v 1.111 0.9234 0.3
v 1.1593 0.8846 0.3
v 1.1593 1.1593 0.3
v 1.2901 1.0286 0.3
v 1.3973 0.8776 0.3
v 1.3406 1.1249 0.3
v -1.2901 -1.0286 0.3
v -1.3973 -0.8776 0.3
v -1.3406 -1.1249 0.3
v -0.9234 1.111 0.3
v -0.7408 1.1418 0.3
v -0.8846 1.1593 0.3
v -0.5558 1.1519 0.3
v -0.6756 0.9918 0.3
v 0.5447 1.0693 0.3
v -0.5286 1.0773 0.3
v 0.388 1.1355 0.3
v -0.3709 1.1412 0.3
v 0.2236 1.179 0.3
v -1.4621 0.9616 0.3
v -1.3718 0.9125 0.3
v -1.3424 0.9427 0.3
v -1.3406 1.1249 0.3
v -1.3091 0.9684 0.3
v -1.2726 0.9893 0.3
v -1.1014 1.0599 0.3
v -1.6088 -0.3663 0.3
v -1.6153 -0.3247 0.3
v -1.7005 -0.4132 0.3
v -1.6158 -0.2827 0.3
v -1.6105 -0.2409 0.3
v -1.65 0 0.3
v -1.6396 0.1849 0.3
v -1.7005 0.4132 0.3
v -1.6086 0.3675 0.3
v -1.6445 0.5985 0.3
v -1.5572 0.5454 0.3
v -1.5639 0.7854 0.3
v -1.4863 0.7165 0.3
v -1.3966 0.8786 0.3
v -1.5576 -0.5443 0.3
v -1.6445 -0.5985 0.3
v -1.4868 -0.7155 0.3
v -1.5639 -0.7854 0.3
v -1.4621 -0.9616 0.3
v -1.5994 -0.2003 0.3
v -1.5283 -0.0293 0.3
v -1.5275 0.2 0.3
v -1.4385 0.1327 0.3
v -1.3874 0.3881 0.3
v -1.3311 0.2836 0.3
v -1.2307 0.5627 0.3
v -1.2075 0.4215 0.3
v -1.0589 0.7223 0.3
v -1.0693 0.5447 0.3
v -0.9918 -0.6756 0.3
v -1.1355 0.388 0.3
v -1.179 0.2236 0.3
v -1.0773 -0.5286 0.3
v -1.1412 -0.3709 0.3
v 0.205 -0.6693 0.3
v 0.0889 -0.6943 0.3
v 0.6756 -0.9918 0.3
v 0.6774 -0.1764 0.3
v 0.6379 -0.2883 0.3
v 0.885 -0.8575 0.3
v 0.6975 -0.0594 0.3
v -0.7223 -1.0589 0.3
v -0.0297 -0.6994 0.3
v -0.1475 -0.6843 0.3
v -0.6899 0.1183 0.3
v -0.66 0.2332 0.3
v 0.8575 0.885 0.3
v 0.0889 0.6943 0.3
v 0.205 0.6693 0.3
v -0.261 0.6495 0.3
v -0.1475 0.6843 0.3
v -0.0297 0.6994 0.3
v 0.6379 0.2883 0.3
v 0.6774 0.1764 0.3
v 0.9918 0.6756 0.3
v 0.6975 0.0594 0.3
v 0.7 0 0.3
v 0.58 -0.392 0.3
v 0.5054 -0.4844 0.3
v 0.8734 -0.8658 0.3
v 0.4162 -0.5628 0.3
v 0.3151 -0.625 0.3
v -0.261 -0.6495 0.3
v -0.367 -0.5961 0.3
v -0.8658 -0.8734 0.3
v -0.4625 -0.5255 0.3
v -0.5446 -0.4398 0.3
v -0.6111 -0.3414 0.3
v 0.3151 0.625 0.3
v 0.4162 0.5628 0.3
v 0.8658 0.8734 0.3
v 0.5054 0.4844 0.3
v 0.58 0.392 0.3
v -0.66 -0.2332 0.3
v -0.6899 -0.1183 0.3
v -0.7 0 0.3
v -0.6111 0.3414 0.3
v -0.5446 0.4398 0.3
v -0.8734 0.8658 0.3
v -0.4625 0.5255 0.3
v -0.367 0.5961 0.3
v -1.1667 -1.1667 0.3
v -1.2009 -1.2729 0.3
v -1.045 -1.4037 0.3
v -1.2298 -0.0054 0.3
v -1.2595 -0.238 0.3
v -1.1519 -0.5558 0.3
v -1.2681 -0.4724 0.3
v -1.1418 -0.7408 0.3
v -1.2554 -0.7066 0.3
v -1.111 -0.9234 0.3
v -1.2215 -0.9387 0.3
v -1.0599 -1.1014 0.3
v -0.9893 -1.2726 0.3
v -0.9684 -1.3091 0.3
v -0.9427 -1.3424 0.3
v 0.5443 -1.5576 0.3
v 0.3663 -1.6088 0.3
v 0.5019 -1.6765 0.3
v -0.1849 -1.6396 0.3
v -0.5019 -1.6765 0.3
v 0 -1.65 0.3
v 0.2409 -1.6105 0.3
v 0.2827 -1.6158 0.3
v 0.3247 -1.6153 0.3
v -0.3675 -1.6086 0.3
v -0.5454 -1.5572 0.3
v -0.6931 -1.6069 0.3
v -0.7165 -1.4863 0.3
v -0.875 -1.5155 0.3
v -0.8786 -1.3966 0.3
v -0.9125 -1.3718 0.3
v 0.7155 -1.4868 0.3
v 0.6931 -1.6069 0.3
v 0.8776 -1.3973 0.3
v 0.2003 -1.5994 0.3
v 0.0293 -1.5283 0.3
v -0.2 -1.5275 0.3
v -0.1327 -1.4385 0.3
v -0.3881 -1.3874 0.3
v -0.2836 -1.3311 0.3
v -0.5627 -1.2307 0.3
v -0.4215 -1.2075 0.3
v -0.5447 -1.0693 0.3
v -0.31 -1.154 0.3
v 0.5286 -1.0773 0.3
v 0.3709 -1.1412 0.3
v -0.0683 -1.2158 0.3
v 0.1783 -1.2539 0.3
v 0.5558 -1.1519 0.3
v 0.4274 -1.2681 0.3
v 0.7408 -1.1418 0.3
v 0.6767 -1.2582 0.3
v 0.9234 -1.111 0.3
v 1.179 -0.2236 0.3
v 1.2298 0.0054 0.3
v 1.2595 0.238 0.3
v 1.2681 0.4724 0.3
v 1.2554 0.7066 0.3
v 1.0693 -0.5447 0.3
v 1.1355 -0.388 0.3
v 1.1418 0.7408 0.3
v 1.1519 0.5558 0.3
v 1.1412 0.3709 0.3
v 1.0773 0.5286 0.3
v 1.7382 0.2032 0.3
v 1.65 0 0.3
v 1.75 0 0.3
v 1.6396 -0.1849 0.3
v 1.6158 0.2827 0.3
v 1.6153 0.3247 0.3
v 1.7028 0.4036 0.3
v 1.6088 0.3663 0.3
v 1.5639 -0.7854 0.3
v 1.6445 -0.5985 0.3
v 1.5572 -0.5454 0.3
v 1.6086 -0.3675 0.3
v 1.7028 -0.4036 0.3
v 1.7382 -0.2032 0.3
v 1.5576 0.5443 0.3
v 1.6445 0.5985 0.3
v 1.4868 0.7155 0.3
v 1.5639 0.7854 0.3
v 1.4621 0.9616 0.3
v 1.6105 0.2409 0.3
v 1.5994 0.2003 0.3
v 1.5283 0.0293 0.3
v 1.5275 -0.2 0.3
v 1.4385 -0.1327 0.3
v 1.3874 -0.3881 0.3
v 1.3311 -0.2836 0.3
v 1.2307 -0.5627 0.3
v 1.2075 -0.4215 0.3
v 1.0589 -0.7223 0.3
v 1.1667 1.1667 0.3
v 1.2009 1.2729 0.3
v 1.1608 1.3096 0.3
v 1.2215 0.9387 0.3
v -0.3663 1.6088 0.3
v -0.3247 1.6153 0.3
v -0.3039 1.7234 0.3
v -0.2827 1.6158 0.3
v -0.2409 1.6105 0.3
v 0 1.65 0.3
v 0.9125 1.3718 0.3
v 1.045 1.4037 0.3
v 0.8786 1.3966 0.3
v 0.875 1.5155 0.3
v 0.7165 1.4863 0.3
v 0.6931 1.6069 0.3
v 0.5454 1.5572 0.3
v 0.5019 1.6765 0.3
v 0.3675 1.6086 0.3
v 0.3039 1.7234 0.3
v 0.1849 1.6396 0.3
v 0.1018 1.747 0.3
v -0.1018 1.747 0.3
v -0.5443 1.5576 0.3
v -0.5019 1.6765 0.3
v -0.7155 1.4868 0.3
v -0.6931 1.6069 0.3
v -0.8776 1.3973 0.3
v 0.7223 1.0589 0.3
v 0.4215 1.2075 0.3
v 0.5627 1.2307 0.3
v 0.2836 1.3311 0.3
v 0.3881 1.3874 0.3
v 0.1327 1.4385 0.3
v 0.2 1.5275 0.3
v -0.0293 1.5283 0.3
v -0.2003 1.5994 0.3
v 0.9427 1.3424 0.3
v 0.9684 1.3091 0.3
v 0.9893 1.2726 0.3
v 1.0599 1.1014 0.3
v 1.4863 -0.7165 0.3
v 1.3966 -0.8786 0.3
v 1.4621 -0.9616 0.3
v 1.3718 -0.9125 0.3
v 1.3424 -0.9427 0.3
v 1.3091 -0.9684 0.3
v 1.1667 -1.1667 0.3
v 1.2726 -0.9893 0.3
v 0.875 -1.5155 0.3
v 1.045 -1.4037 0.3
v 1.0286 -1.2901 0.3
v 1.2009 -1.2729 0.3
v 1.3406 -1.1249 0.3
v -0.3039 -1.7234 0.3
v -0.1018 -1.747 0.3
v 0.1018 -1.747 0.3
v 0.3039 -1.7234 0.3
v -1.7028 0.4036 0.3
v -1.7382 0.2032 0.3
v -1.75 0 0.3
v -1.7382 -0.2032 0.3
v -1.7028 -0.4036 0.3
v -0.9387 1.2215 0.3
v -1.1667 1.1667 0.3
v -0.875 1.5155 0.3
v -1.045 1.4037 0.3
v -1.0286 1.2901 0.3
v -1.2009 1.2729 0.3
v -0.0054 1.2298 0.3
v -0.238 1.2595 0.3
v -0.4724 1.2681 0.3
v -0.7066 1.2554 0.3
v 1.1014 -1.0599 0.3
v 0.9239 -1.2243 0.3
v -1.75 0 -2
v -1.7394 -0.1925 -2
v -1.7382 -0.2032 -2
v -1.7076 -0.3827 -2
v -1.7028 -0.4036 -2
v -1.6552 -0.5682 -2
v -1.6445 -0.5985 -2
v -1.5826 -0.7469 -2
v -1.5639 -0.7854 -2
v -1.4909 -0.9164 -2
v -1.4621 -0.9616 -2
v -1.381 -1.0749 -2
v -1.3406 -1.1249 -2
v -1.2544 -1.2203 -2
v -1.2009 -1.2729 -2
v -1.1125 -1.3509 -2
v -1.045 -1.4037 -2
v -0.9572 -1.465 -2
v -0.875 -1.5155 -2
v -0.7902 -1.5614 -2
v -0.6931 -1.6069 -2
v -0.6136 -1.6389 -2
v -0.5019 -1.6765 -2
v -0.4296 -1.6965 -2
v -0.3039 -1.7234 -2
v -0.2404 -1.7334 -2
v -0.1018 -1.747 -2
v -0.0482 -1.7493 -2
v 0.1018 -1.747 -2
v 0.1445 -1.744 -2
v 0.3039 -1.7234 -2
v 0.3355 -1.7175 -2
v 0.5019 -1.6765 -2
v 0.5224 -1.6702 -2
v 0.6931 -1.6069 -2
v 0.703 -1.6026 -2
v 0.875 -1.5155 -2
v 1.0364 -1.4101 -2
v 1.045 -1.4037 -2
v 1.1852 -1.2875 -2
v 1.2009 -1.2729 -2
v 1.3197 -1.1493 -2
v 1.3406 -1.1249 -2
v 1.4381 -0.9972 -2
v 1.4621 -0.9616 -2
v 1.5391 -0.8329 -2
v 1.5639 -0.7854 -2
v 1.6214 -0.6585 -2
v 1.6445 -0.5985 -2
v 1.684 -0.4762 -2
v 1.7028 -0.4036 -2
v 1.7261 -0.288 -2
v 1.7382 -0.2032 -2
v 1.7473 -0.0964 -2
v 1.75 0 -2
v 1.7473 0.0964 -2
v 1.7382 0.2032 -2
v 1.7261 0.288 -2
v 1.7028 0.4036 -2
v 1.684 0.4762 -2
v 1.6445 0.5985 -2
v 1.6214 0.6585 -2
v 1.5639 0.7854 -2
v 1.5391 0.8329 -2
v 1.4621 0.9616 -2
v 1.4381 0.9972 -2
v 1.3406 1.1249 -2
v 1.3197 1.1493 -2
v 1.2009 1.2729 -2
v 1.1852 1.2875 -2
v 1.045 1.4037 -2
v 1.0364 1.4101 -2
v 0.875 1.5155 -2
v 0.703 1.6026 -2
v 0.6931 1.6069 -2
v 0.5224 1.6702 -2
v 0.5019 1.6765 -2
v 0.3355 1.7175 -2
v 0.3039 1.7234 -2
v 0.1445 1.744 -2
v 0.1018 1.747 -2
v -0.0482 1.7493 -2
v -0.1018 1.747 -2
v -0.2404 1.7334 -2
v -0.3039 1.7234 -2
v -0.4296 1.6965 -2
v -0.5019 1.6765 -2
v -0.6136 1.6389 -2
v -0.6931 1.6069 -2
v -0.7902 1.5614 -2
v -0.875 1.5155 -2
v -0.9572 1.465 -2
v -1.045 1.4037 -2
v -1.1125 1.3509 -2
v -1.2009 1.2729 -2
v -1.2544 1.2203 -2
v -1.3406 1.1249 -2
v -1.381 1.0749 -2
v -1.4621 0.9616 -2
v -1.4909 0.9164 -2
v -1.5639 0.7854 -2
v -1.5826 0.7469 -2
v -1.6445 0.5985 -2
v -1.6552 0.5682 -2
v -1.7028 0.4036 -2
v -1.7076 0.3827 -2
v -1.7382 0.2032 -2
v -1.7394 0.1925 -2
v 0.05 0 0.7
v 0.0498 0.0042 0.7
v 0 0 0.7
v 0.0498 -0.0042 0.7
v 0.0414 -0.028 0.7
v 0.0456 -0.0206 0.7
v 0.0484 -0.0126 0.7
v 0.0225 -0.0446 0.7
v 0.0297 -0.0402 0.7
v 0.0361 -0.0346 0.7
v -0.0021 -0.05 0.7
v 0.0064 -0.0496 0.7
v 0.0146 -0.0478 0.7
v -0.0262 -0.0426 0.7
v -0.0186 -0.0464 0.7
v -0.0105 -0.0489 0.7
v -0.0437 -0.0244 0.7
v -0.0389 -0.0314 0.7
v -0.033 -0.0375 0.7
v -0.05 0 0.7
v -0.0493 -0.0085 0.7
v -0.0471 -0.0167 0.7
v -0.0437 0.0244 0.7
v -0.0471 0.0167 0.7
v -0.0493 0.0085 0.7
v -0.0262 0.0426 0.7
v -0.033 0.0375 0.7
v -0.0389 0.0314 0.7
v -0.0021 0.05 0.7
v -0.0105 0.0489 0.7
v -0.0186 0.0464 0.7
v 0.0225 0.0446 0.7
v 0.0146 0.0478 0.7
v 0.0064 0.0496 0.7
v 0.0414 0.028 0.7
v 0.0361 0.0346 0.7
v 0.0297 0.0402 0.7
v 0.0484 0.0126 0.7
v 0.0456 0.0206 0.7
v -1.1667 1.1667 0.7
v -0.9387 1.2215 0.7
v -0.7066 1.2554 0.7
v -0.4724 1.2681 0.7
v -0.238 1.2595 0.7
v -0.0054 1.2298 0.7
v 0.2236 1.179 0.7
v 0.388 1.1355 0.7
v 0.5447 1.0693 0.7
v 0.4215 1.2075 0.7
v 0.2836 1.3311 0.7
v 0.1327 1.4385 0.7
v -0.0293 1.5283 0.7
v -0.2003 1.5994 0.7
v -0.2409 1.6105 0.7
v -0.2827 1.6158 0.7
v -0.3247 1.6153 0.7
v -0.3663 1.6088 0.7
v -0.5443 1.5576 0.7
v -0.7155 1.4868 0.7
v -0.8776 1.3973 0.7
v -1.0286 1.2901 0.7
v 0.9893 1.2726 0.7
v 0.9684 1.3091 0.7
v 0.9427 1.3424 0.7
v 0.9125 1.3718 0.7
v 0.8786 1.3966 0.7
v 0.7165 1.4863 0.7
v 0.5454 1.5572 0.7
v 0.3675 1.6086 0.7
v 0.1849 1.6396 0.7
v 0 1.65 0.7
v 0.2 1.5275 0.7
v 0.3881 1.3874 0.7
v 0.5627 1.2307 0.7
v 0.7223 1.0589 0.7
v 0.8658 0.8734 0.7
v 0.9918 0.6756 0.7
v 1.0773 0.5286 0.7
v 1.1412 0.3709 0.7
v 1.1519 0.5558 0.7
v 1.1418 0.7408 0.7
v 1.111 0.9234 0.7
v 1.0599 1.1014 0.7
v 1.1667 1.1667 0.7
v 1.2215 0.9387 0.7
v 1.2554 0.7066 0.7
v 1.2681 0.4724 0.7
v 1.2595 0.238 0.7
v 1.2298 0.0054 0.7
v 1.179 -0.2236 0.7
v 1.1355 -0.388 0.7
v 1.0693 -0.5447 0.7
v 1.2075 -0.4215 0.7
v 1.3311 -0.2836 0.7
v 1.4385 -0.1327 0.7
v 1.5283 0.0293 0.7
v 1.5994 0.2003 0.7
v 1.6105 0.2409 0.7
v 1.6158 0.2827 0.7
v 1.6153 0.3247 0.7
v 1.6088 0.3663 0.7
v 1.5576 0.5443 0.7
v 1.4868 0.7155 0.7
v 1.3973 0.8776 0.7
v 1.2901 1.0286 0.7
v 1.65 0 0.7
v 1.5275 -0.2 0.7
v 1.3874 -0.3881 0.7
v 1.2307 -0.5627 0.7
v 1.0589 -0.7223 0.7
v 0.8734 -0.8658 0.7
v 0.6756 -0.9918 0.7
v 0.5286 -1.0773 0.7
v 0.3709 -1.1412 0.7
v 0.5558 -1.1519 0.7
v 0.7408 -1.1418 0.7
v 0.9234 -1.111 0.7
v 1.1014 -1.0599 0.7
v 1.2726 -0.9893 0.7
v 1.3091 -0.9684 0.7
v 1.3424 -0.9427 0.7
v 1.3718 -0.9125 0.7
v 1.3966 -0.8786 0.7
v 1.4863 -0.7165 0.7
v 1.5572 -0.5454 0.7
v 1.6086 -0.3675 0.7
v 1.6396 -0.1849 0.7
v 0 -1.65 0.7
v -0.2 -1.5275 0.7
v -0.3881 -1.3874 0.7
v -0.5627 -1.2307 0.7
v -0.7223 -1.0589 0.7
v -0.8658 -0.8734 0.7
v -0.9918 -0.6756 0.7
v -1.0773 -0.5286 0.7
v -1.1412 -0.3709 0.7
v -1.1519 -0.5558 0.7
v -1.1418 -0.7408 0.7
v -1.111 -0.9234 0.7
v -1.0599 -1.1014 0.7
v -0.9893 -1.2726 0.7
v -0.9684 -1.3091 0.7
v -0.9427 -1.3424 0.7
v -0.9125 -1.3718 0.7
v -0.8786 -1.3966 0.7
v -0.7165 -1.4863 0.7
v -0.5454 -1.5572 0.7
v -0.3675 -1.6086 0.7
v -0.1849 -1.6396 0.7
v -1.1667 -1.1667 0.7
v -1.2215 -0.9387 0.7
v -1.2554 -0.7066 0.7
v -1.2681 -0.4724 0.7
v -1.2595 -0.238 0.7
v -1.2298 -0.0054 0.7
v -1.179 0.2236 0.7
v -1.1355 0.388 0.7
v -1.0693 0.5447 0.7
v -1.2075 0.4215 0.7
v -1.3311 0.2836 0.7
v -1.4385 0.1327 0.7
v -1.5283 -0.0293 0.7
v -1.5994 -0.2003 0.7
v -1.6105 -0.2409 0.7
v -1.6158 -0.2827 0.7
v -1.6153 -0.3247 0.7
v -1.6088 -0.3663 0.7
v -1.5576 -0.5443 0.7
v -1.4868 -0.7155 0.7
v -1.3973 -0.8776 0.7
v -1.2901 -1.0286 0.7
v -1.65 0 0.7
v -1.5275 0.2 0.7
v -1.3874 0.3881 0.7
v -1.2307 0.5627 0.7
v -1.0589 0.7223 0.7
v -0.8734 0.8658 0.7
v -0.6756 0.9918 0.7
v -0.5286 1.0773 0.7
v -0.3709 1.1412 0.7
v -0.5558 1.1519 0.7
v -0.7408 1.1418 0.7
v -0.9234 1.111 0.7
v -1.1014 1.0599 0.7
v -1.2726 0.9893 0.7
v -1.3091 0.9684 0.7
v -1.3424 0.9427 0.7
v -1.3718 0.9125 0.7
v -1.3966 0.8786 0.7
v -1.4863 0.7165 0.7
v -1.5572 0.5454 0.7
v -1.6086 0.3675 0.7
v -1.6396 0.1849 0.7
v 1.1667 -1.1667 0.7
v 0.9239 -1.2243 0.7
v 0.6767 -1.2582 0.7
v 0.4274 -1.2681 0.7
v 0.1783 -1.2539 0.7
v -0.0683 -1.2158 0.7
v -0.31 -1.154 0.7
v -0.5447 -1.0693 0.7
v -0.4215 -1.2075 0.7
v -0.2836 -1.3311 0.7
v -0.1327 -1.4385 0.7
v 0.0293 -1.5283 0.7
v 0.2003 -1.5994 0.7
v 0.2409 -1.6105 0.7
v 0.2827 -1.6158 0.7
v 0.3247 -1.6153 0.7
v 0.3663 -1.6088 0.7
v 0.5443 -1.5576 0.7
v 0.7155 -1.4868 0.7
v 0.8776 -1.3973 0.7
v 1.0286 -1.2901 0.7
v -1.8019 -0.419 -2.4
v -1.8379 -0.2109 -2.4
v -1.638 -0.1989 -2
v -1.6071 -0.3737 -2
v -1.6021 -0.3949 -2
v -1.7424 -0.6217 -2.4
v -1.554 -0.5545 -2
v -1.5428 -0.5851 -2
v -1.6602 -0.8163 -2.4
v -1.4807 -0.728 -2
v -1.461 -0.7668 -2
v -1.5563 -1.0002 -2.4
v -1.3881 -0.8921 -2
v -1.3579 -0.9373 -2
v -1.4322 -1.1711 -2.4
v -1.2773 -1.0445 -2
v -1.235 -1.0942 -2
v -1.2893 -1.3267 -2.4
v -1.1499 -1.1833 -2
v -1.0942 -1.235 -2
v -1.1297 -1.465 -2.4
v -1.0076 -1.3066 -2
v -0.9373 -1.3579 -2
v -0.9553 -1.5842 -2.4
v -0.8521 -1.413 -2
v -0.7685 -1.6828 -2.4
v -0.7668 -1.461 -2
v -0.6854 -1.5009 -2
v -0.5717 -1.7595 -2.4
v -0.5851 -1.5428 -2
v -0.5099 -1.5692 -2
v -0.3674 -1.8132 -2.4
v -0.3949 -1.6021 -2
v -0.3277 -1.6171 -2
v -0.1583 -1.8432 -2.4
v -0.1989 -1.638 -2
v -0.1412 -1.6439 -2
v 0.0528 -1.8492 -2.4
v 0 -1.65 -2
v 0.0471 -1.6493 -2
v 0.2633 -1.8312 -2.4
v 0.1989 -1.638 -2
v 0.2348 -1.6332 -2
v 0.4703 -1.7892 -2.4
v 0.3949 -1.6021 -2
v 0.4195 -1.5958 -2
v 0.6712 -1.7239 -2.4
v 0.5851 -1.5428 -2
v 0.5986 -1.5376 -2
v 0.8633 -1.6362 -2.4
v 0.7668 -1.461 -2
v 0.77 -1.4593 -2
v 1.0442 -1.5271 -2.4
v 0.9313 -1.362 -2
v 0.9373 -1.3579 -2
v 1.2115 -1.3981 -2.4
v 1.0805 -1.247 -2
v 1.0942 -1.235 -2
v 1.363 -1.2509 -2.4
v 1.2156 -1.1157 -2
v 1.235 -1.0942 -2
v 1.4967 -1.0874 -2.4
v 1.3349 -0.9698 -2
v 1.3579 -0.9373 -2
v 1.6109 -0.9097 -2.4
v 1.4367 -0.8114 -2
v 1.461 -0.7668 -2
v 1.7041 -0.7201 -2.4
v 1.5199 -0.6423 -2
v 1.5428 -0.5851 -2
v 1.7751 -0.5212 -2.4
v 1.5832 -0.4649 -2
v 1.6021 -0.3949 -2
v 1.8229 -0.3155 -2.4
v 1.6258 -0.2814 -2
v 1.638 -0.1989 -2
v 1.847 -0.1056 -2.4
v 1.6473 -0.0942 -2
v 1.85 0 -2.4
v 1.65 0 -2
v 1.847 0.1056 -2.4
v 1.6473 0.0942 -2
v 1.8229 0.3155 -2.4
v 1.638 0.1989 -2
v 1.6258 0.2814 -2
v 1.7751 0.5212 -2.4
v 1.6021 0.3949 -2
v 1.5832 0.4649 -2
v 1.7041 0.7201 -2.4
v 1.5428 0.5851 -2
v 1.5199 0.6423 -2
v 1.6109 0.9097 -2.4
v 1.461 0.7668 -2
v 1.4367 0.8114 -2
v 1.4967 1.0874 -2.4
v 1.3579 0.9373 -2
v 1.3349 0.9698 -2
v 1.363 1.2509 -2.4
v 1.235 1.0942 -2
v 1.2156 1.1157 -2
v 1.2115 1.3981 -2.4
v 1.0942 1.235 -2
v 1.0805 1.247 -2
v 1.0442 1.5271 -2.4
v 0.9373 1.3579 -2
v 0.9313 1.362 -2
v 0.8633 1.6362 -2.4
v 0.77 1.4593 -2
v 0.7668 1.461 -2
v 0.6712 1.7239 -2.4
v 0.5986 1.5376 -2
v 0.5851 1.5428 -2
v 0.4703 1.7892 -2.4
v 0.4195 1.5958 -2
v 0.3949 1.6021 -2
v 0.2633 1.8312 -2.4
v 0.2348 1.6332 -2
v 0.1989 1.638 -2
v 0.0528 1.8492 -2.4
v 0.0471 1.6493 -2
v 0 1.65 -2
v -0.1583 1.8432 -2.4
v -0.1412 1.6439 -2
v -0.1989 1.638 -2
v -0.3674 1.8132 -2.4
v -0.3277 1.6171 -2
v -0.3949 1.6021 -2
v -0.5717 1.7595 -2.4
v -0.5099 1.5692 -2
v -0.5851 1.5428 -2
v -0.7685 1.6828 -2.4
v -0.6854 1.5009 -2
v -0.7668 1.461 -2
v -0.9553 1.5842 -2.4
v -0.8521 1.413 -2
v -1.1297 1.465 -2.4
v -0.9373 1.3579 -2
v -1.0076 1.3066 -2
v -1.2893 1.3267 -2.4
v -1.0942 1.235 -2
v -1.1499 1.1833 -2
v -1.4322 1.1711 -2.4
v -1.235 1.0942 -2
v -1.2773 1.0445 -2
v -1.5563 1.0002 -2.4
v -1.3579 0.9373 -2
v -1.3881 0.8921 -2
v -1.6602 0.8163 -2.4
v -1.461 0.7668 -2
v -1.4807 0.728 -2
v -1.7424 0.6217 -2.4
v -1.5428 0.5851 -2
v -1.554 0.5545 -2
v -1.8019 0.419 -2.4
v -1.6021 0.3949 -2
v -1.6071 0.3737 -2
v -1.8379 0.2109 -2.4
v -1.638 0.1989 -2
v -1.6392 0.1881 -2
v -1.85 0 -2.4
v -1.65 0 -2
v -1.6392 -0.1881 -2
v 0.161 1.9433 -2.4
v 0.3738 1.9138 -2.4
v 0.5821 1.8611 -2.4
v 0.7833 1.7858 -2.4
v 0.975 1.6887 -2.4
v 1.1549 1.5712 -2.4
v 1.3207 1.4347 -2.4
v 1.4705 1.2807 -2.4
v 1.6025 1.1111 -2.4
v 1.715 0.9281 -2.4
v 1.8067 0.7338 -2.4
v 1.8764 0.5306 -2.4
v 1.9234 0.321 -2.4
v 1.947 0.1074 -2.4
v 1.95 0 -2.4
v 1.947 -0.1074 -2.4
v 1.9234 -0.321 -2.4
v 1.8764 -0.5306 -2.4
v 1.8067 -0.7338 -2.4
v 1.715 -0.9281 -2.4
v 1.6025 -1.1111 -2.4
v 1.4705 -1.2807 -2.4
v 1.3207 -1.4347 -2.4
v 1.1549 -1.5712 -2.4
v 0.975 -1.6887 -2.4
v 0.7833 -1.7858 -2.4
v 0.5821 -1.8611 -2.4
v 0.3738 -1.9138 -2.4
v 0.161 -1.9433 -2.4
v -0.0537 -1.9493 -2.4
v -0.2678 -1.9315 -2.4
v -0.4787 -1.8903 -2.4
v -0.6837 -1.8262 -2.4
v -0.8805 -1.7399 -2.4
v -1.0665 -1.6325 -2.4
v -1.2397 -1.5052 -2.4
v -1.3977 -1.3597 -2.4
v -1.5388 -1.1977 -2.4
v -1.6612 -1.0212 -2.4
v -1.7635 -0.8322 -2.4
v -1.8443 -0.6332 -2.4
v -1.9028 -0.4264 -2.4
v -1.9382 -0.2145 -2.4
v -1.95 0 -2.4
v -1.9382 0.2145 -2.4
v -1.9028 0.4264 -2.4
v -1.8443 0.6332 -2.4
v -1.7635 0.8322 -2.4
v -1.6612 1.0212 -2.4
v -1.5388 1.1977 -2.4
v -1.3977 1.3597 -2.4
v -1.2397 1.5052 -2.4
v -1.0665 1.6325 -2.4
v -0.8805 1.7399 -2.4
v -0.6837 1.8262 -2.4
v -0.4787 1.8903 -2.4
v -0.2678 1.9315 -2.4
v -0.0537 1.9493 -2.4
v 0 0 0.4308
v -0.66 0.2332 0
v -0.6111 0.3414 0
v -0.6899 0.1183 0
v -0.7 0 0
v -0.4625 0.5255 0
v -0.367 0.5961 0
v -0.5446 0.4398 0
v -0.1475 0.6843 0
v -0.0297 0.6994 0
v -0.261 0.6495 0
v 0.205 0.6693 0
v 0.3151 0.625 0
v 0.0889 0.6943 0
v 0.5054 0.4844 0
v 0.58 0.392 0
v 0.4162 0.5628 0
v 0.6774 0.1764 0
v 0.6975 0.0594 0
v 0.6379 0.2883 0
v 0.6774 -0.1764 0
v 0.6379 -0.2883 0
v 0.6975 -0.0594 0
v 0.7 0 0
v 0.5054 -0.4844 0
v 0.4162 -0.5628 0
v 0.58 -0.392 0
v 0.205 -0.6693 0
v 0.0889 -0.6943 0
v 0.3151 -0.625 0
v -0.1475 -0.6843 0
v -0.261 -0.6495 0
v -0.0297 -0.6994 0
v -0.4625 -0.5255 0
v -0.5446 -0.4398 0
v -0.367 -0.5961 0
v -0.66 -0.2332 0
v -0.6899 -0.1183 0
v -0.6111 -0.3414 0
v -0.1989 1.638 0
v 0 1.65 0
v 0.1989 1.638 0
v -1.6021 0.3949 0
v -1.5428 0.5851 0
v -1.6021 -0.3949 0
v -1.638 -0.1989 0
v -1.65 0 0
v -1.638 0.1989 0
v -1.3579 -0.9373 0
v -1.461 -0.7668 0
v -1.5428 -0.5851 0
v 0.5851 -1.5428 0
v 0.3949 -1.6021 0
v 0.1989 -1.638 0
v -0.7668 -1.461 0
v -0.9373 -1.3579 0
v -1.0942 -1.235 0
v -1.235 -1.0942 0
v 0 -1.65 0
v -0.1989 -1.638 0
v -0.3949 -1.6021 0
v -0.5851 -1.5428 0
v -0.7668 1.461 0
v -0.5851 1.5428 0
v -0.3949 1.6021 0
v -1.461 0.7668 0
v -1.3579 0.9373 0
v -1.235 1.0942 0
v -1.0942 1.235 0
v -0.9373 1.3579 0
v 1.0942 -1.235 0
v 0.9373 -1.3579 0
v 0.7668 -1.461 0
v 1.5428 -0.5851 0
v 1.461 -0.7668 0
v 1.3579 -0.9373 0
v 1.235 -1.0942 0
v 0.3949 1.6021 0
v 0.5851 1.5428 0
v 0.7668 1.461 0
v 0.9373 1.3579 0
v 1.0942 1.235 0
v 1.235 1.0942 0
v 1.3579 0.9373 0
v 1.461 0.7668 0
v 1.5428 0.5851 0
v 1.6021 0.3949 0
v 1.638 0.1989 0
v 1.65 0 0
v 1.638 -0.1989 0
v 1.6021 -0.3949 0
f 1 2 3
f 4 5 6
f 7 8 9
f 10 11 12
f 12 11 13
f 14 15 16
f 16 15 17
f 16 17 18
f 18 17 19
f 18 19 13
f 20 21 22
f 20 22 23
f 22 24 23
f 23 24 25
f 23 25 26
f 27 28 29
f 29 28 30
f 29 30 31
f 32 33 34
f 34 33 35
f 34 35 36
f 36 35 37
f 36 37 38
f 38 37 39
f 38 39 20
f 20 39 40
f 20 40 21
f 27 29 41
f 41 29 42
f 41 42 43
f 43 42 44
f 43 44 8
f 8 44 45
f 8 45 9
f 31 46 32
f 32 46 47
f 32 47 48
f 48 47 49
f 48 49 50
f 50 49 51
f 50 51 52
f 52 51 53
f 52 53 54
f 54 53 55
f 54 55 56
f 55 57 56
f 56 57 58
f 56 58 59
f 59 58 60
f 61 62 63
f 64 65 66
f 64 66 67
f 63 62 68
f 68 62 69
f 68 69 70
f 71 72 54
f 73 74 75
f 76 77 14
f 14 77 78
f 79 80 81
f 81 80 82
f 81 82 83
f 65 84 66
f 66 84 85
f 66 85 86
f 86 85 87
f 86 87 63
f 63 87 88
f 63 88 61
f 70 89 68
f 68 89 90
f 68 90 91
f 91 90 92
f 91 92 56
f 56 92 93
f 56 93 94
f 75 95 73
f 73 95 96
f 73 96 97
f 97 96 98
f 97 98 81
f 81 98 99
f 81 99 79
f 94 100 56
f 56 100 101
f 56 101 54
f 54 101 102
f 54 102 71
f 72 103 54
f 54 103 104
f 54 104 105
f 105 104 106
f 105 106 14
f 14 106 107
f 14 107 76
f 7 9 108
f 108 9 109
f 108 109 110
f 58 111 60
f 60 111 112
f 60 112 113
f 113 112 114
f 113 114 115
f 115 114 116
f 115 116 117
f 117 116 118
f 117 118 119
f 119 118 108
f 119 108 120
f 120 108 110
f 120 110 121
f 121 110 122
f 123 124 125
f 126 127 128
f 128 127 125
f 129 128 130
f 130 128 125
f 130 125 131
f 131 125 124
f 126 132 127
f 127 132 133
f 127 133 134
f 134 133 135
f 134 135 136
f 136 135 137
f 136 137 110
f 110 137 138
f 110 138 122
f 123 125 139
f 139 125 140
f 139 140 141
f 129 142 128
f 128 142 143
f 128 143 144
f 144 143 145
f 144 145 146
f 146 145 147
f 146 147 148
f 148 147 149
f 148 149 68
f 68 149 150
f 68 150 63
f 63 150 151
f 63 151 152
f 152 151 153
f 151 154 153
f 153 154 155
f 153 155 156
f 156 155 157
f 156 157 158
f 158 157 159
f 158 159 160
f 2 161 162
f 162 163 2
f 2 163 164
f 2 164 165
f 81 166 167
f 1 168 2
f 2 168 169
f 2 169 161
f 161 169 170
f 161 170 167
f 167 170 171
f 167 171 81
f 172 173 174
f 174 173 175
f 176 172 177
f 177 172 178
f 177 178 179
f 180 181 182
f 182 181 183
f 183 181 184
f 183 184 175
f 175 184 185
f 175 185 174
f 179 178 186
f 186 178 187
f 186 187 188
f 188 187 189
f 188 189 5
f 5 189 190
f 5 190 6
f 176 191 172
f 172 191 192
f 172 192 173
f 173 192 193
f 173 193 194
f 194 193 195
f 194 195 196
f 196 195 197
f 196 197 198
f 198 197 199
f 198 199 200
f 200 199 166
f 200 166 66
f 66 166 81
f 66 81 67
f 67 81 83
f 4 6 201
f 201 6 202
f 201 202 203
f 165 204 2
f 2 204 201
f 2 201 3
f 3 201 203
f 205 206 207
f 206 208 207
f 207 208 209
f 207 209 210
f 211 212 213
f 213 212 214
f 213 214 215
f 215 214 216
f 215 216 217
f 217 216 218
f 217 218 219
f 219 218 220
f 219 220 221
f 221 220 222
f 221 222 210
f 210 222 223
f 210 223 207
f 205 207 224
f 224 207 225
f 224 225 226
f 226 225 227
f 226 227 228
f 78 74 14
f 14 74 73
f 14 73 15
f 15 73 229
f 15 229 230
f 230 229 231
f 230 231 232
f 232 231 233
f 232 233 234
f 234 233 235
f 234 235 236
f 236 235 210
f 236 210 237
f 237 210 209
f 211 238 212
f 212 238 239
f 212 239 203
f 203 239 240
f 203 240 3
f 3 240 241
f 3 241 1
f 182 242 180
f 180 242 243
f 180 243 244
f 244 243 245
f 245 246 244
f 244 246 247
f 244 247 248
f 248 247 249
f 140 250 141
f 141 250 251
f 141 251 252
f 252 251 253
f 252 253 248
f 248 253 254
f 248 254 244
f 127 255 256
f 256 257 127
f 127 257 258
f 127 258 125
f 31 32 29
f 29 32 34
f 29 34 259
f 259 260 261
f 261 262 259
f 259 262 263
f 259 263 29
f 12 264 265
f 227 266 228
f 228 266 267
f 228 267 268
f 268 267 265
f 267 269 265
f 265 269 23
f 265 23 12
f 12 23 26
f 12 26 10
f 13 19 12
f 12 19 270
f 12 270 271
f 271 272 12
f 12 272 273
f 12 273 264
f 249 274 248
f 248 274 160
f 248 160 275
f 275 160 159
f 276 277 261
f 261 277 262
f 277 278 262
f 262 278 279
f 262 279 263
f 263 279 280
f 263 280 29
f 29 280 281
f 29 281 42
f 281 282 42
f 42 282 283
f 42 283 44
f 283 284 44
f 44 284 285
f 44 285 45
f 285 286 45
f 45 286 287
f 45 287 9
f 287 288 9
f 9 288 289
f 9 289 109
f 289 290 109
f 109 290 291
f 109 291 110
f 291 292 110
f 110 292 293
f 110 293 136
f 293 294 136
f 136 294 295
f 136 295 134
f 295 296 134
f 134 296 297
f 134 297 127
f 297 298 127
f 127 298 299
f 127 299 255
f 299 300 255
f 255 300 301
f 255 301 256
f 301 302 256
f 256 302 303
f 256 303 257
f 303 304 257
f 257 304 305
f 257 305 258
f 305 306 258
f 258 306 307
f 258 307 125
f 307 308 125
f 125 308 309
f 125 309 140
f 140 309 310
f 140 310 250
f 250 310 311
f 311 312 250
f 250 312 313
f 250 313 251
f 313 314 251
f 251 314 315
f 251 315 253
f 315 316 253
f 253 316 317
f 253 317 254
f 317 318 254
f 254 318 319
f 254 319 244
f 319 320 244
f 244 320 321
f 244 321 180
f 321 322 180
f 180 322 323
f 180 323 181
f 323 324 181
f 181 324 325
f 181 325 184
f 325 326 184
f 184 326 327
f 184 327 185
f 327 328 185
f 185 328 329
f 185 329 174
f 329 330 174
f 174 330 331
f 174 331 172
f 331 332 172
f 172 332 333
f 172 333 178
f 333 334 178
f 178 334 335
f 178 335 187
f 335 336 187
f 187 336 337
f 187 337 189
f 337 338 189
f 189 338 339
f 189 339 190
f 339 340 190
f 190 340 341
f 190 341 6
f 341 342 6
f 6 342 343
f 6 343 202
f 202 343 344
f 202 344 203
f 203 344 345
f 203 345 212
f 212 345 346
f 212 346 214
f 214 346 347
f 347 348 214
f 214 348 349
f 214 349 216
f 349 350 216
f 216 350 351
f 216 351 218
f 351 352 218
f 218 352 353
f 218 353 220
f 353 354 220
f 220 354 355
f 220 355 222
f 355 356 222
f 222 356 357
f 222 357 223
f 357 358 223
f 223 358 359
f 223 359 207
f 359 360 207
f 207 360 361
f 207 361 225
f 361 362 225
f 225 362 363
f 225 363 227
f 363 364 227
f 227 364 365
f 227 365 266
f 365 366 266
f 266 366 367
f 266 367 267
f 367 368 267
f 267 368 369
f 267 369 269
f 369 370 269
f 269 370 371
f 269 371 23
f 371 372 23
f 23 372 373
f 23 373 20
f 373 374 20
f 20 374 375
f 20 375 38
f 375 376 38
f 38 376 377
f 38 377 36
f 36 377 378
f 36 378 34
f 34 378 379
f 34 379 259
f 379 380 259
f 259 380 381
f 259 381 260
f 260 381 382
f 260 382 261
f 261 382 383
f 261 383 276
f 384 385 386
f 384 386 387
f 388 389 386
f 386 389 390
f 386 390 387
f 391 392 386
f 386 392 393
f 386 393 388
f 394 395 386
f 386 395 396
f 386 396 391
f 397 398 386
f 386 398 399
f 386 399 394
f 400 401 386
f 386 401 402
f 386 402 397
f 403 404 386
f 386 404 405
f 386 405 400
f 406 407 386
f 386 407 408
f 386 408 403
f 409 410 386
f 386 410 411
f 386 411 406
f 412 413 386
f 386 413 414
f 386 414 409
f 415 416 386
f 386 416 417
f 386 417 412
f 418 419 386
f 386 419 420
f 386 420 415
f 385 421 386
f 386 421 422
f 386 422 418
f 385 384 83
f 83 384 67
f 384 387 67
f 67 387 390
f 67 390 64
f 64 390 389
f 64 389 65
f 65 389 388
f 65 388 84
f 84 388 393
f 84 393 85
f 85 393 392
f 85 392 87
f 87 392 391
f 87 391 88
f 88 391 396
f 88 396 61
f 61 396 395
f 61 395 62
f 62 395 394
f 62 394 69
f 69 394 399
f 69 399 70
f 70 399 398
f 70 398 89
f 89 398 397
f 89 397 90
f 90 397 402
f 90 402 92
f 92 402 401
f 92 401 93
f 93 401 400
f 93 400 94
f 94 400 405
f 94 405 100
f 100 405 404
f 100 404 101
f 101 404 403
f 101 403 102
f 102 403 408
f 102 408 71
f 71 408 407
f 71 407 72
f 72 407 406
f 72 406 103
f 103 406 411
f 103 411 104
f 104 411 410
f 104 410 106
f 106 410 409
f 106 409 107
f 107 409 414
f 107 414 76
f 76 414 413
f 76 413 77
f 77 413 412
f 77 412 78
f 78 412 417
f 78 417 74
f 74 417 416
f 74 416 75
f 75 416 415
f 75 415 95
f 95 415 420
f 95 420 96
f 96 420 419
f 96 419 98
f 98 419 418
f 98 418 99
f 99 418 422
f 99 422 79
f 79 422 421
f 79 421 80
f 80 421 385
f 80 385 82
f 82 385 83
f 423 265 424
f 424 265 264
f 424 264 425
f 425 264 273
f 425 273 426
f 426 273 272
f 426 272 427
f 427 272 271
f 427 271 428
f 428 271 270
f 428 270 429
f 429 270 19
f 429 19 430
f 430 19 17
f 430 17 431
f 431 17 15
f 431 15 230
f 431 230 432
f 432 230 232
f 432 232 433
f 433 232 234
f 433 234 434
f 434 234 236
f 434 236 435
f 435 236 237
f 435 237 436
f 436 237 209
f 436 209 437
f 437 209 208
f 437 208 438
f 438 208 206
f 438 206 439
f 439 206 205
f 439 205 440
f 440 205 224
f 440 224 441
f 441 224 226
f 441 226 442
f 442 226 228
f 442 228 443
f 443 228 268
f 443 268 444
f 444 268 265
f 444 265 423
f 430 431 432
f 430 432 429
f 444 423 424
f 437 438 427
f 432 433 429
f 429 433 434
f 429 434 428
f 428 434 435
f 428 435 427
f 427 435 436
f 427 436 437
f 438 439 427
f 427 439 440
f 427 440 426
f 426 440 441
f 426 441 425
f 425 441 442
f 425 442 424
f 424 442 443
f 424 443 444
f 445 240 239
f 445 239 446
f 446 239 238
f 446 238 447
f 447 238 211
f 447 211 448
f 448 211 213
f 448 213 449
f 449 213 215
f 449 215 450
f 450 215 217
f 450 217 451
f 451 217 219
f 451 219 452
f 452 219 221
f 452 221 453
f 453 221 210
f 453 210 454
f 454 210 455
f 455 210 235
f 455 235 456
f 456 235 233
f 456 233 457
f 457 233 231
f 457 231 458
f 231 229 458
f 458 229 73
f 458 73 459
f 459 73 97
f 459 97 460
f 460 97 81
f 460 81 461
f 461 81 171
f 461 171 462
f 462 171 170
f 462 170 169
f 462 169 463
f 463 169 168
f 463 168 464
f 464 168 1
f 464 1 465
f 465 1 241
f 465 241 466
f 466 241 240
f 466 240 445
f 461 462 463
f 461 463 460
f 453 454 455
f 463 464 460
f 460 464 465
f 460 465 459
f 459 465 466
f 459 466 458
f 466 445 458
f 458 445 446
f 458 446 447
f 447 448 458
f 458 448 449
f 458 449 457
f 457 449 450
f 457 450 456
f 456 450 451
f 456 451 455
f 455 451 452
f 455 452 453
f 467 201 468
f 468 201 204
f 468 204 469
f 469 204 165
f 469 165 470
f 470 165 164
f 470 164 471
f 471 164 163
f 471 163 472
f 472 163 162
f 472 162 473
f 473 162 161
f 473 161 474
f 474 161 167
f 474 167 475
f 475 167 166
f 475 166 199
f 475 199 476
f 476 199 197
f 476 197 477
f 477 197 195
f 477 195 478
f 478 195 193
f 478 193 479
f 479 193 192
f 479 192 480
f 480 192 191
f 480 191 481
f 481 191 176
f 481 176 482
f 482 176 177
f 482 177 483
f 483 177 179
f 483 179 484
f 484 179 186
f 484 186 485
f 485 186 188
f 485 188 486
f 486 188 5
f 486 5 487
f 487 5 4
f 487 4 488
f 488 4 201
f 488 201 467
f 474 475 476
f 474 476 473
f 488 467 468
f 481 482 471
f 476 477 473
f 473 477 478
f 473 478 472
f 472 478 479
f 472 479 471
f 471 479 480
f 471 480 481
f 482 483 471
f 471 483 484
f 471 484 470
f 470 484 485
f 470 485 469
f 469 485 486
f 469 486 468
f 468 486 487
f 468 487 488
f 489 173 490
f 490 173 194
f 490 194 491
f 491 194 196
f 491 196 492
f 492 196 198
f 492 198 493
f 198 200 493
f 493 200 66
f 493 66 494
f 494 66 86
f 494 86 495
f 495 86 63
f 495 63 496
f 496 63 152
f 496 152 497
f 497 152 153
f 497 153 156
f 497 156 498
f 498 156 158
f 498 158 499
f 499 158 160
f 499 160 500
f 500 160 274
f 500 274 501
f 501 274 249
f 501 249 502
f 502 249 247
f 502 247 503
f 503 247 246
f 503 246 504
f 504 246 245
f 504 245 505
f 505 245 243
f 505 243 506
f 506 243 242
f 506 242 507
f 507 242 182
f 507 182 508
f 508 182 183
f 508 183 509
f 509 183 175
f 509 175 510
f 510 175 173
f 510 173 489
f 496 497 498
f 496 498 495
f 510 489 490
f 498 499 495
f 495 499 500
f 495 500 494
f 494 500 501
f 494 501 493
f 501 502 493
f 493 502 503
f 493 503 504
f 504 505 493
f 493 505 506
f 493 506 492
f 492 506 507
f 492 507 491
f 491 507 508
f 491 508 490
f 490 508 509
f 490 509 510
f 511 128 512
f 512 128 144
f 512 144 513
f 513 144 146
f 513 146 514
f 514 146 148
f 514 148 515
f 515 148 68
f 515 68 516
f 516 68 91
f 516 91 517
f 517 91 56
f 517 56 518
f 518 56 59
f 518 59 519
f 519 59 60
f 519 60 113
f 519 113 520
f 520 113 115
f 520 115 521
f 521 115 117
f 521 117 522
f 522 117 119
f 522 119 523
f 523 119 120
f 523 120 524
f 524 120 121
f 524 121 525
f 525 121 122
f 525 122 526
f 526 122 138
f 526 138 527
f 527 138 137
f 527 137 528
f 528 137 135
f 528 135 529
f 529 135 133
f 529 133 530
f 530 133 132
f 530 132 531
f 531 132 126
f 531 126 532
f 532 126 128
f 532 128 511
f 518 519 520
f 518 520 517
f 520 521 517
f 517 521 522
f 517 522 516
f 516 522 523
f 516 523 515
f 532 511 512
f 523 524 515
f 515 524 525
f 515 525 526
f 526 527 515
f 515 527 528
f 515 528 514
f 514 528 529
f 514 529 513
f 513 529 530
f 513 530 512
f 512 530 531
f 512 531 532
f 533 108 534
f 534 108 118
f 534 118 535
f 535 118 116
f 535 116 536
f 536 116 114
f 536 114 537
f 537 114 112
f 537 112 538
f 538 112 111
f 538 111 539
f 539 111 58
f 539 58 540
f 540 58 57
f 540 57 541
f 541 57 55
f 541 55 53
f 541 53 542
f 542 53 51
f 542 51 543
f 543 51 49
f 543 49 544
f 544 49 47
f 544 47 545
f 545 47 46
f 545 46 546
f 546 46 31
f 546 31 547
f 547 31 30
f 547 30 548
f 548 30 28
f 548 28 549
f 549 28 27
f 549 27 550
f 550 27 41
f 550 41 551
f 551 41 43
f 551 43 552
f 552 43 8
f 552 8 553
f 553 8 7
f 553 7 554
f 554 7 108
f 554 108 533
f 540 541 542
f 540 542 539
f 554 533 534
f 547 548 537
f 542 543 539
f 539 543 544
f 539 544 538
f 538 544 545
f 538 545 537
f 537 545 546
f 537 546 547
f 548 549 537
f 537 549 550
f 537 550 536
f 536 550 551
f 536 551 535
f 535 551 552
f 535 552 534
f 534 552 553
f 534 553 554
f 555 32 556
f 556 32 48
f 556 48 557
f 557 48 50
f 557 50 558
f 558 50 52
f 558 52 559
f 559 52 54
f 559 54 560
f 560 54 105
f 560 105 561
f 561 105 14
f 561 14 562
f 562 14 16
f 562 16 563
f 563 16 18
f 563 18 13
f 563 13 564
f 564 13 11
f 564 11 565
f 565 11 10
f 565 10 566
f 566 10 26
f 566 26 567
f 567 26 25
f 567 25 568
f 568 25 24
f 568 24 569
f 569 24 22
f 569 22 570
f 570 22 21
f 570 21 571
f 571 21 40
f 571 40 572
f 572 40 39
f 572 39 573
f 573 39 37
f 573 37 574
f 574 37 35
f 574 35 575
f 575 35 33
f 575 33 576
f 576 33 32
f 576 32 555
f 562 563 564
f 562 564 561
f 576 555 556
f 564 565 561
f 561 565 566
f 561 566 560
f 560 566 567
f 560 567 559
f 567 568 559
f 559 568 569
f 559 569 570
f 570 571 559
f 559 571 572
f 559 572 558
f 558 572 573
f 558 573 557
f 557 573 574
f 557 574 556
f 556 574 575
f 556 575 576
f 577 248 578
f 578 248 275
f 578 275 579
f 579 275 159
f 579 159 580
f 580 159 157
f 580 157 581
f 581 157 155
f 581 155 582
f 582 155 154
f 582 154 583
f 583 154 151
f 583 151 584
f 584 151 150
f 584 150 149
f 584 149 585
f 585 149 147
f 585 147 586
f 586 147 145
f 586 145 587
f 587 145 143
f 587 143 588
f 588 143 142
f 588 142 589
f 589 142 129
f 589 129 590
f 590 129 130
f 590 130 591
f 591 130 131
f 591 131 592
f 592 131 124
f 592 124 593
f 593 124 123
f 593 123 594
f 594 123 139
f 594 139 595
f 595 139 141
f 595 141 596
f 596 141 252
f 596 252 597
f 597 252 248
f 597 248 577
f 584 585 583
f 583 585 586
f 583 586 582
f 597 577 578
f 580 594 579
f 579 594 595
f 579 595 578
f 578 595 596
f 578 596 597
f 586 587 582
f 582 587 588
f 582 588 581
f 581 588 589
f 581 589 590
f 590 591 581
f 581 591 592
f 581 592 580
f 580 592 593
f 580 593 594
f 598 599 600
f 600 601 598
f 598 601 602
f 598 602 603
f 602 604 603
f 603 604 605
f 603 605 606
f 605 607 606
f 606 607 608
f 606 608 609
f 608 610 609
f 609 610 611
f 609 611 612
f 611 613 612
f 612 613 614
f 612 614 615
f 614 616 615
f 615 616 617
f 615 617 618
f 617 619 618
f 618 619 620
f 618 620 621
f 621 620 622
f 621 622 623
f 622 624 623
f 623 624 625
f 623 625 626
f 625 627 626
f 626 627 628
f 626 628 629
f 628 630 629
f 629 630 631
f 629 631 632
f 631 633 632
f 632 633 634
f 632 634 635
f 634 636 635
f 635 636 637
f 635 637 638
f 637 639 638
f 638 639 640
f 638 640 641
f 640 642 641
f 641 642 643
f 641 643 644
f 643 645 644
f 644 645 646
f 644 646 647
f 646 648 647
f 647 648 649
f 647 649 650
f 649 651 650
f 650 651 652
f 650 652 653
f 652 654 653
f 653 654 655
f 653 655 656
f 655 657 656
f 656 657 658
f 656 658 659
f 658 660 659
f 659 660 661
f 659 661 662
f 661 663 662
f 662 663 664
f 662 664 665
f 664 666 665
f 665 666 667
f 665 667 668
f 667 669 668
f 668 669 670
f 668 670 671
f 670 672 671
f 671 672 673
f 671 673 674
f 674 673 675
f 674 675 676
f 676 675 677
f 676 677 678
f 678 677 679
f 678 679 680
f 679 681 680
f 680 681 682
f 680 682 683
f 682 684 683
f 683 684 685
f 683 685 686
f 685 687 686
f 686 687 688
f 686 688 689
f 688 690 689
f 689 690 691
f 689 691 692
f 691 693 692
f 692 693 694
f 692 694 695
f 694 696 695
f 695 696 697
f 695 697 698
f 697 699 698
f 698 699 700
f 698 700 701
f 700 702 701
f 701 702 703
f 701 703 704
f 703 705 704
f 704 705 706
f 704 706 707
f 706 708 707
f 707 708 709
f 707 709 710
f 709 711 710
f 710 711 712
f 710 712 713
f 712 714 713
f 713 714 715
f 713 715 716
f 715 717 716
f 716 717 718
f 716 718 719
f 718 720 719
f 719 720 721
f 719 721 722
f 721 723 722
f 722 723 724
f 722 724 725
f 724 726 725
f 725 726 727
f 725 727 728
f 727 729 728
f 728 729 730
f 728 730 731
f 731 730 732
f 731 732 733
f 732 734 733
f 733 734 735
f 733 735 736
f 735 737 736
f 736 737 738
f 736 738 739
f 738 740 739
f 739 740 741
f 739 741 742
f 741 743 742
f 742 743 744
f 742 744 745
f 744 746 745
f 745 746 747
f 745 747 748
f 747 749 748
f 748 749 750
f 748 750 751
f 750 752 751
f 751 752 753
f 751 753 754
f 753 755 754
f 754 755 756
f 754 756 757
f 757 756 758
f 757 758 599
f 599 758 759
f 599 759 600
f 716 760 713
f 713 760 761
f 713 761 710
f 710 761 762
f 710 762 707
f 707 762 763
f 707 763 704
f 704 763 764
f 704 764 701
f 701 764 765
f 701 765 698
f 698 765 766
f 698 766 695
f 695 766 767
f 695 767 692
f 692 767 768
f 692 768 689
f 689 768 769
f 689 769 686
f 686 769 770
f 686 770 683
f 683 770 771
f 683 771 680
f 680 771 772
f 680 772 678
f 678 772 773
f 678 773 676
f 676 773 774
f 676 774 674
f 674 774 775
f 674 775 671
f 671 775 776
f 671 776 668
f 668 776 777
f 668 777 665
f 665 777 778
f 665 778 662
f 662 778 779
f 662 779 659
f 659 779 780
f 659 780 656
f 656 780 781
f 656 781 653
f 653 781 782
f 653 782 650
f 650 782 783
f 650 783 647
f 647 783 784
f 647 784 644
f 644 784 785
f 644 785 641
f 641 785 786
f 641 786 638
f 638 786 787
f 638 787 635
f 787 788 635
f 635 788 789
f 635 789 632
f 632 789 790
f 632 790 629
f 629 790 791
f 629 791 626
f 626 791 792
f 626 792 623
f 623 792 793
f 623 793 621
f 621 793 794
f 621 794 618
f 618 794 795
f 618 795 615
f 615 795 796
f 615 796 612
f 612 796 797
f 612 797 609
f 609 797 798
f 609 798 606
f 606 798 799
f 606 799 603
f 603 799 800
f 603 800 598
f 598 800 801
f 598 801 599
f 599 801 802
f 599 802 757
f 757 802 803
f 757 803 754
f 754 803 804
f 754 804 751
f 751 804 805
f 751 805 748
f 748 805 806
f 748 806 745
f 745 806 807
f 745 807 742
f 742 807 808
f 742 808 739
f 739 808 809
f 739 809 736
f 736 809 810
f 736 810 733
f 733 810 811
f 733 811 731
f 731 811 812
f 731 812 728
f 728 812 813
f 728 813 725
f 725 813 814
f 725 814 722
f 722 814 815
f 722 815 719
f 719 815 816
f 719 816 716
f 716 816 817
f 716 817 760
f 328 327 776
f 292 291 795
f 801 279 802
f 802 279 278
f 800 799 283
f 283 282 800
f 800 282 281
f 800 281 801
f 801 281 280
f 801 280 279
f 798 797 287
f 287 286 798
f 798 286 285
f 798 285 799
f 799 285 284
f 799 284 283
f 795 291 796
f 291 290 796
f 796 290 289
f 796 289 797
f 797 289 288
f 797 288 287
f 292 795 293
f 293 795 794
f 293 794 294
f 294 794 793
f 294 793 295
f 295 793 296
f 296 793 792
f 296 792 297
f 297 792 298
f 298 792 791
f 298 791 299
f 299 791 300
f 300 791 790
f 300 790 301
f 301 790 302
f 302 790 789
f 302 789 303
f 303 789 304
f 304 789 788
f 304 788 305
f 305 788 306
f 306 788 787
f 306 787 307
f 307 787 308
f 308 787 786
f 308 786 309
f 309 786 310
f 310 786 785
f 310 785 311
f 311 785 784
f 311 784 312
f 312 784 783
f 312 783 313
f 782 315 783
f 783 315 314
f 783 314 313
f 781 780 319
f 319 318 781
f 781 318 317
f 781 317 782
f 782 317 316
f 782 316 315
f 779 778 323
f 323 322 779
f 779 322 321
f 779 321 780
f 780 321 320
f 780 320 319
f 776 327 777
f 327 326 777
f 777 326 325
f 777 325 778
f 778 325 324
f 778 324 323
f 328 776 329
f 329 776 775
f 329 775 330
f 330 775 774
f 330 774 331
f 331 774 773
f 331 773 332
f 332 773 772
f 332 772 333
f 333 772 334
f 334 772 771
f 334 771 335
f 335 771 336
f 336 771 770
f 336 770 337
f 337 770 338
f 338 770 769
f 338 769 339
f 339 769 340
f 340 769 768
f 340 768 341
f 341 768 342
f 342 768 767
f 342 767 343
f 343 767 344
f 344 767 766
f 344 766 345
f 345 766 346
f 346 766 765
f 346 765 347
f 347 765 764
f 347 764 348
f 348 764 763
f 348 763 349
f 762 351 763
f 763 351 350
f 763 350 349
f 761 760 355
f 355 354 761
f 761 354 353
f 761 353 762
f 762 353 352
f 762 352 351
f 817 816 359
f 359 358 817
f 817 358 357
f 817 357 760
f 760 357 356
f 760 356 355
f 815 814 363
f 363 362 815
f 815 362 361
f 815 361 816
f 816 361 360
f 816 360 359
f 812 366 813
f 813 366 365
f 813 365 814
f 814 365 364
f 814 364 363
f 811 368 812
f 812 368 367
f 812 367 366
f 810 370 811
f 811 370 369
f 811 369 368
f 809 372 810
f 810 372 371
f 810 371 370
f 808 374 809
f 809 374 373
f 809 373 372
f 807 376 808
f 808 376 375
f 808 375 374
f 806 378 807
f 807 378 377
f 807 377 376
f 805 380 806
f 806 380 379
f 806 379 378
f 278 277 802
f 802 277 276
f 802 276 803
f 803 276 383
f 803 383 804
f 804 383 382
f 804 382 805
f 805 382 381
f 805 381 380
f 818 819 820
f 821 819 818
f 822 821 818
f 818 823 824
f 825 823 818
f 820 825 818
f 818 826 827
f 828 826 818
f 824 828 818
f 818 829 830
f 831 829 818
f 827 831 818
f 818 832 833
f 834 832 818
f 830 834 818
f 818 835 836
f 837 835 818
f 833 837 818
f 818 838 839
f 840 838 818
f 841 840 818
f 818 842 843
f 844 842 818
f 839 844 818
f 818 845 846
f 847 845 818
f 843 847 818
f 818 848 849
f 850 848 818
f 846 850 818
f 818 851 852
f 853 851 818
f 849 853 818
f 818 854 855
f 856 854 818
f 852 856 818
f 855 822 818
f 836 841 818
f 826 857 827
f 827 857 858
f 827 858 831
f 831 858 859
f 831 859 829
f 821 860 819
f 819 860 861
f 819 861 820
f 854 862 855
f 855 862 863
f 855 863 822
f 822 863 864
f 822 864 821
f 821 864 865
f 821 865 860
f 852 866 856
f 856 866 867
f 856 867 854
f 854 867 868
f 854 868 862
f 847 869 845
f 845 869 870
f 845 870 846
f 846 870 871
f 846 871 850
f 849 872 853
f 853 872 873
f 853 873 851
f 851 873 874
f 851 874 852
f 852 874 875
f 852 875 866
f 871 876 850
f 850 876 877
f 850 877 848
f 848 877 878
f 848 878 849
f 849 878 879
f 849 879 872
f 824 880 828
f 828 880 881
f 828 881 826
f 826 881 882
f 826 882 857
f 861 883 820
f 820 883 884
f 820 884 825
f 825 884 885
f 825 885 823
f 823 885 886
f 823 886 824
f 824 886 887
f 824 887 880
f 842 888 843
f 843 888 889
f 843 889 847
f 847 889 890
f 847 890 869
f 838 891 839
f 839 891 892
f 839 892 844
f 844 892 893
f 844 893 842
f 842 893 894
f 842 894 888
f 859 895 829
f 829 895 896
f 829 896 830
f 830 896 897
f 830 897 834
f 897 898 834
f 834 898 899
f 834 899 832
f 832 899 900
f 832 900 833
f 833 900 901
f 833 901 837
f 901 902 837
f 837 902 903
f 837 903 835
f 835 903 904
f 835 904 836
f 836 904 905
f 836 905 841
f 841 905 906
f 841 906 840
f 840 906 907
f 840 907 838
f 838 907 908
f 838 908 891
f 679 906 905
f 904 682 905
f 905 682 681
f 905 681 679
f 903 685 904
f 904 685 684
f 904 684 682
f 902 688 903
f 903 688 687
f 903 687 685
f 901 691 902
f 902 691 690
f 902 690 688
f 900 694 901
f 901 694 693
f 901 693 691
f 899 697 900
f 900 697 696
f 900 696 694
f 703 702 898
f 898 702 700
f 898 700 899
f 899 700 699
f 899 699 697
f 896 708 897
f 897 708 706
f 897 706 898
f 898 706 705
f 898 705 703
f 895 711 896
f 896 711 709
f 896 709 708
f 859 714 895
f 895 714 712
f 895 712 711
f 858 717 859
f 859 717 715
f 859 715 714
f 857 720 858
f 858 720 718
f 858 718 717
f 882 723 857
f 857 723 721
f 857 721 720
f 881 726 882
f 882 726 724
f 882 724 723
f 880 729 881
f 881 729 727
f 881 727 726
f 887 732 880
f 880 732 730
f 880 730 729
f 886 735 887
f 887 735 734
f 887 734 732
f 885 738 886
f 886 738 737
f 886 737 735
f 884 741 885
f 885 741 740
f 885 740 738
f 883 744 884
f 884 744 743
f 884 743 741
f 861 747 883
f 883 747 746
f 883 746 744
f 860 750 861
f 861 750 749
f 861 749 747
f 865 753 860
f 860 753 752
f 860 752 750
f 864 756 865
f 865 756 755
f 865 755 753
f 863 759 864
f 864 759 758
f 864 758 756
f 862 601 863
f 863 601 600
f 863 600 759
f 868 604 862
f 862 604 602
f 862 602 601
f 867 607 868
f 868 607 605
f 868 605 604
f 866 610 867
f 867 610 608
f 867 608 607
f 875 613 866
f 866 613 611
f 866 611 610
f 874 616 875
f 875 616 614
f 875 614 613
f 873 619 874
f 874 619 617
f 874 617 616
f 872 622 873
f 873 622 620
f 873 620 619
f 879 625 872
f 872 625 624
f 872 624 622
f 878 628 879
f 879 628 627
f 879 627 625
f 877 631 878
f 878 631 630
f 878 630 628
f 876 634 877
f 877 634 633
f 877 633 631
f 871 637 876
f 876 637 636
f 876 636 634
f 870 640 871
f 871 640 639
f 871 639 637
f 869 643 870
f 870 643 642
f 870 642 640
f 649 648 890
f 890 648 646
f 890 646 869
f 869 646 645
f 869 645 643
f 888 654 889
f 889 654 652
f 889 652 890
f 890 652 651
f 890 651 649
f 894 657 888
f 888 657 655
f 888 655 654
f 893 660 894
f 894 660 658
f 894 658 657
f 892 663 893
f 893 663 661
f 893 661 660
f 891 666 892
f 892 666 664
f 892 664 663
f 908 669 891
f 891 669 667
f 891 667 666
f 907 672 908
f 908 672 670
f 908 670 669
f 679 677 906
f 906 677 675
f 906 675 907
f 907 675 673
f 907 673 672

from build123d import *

# Parameters (mm, degrees)
SKETCH_21_R         = 1.75
EXTRUDE_8_DEPTH     = 0.3
SKETCH_22_R         = 0.7
CUT_EXTRUDE_4_DEPTH = 0.3
EXTRUDE_START       = -2
SKETCH_24_R         = 1.75
SKETCH_24_R_2       = 1.65
EXTRUDE_9_DEPTH     = 2
EXTRUDE_10_DEPTH    = 0.4


with BuildPart() as part:
    # 스케치21 → 보스-돌출8 (new body)
    with BuildSketch(Plane(origin=(0, -5.7, 0), x_dir=(-1, 0, 0), z_dir=(0, 0, 1))):
        with Locations(Location((0, -5.7, 0), (0, 0, 180))):
            Circle(SKETCH_21_R)
    extrude(amount=EXTRUDE_8_DEPTH)

    # 스케치22 → 컷-돌출4 (cut)
    with BuildSketch(Plane(origin=(0, 0, 0.3), x_dir=(-1, 0, 0), z_dir=(0, 0, 1))):
        with Locations(Location((0, 0, 0), (0, 0, 180))):
            Circle(SKETCH_22_R)
    extrude(amount=-CUT_EXTRUDE_4_DEPTH, mode=Mode.SUBTRACT)

    # 스케치23 → 회전4 (revolve)
    with BuildSketch(Plane(origin=(0, 0, 0), x_dir=(1, 0, 0), z_dir=(0, 1, 0)), mode=Mode.PRIVATE) as revolve_4_sk:
        Polygon((0.7, -0.3), (0.7, 0), (0, -0.430769231), (0, -0.7), (0.05, -0.7), align=None)
    revolve(revolve_4_sk.sketch.rotate(Axis((0, 0, 0.7), (0, 0, -1)), 180), axis=Axis((0, 0, 0.7), (0, 0, -1)))

    # 스케치24 → 보스-돌출9 (add)
    with BuildSketch(Plane.XY.offset(EXTRUDE_START)):
        Circle(SKETCH_24_R)
        Circle(SKETCH_24_R_2, mode=Mode.SUBTRACT)
    extrude(amount=EXTRUDE_9_DEPTH)

    # 스케치33 → 보스-돌출10 (add)
    with BuildSketch(Plane.XY.offset(0.3)):
        with BuildLine():
            ThreePointArc((-0.200344113, 1.599365846), (-0.282671821, 1.615821098), (-0.366335413, 1.608818935))
            ThreePointArc((-0.366335413, 1.608818935), (-0.797766236, 1.444323036), (-1.166726189, 1.166726189))
            ThreePointArc((-1.166726189, 1.166726189), (-0.472406232, 1.268123752), (0.223593744, 1.178985088))
            ThreePointArc((0.223593744, 1.178985088), (0.388035033, 1.13553019), (0.544680788, 1.069262755))
            ThreePointArc((0.544680788, 1.069262755), (0.209622019, 1.386952977), (-0.200344113, 1.599365846))
        make_face()
        with BuildLine():
            ThreePointArc((0.989257755, 1.272587116), (0.942678894, 1.342437217), (0.878568524, 1.396645033))
            ThreePointArc((0.878568524, 1.396645033), (0.457184697, 1.585396528), (0, 1.65))
            ThreePointArc((0, 1.65), (0.562657254, 1.230740555), (0.991773003, 0.675563698))
            ThreePointArc((0.991773003, 0.675563698), (1.077323301, 0.528558895), (1.141230424, 0.370935466))
            ThreePointArc((1.141230424, 0.370935466), (1.128949006, 0.832498704), (0.989257755, 1.272587116))
        make_face()
        with BuildLine():
            ThreePointArc((1.599365846, 0.200344113), (1.615821098, 0.282671821), (1.608818935, 0.366335413))
            ThreePointArc((1.608818935, 0.366335413), (1.444323036, 0.797766236), (1.166726189, 1.166726189))
            ThreePointArc((1.166726189, 1.166726189), (1.268123752, 0.472406232), (1.178985088, -0.223593744))
            ThreePointArc((1.178985088, -0.223593744), (1.13553019, -0.388035033), (1.069262755, -0.544680788))
            ThreePointArc((1.069262755, -0.544680788), (1.386952977, -0.209622019), (1.599365846, 0.200344113))
        make_face()
        with BuildLine():
            ThreePointArc((1.396645033, -0.878568524), (1.585396528, -0.457184697), (1.65, 0))
            ThreePointArc((1.65, 0), (1.230740555, -0.562657254), (0.675563698, -0.991773003))
            ThreePointArc((0.675563698, -0.991773003), (0.528558895, -1.077323301), (0.370935466, -1.141230424))
            ThreePointArc((0.370935466, -1.141230424), (0.832498704, -1.128949006), (1.272587116, -0.989257755))
            ThreePointArc((1.272587116, -0.989257755), (1.342437217, -0.942678894), (1.396645033, -0.878568524))
        make_face()
        with BuildLine():
            ThreePointArc((-0.878568524, -1.396645033), (-0.457184697, -1.585396528), (0, -1.65))
            ThreePointArc((0, -1.65), (-0.562657254, -1.230740555), (-0.991773003, -0.675563698))
            ThreePointArc((-0.991773003, -0.675563698), (-1.077323301, -0.528558895), (-1.141230424, -0.370935466))
            ThreePointArc((-1.141230424, -0.370935466), (-1.128949006, -0.832498704), (-0.989257755, -1.272587116))
            ThreePointArc((-0.989257755, -1.272587116), (-0.942678894, -1.342437217), (-0.878568524, -1.396645033))
        make_face()
        with BuildLine():
            ThreePointArc((-1.608818935, -0.366335413), (-1.444323036, -0.797766236), (-1.166726189, -1.166726189))
            ThreePointArc((-1.166726189, -1.166726189), (-1.268123752, -0.472406232), (-1.178985088, 0.223593744))
            ThreePointArc((-1.178985088, 0.223593744), (-1.13553019, 0.388035033), (-1.069262755, 0.544680788))
            ThreePointArc((-1.069262755, 0.544680788), (-1.386952977, 0.209622019), (-1.599365846, -0.200344113))
            ThreePointArc((-1.599365846, -0.200344113), (-1.615821098, -0.282671821), (-1.608818935, -0.366335413))
        make_face()
        with BuildLine():
            ThreePointArc((-1.272587116, 0.989257755), (-1.342437217, 0.942678894), (-1.396645033, 0.878568524))
            ThreePointArc((-1.396645033, 0.878568524), (-1.585396528, 0.457184697), (-1.65, 0))
            ThreePointArc((-1.65, 0), (-1.230740555, 0.562657254), (-0.675563698, 0.991773003))
            ThreePointArc((-0.675563698, 0.991773003), (-0.528558895, 1.077323301), (-0.370935466, 1.141230424))
            ThreePointArc((-0.370935466, 1.141230424), (-0.832498704, 1.128949006), (-1.272587116, 0.989257755))
        make_face()
        with BuildLine():
            ThreePointArc((1.166726189, -1.166726189), (0.797766236, -1.444323036), (0.366335413, -1.608818935))
            ThreePointArc((0.366335413, -1.608818935), (0.282671821, -1.615821098), (0.200344113, -1.599365846))
            ThreePointArc((0.200344113, -1.599365846), (-0.209622019, -1.386952977), (-0.544680788, -1.069262755))
            ThreePointArc((-0.544680788, -1.069262755), (0.302705274, -1.264044139), (1.166726189, -1.166726189))
        make_face()
    extrude(amount=EXTRUDE_10_DEPTH)

    # 스케치36 → 회전5 (revolve)
    with BuildSketch(Plane(origin=(0, 0, 0), x_dir=(1, 0, 0), z_dir=(0, 1, 0))):
        Polygon((1.75, 2), (1.95, 2.4), (1.85, 2.4), (1.65, 2), align=None)
    revolve(axis=Axis((0, 0, 0), (0, 0, -1)))


solid = part.part
